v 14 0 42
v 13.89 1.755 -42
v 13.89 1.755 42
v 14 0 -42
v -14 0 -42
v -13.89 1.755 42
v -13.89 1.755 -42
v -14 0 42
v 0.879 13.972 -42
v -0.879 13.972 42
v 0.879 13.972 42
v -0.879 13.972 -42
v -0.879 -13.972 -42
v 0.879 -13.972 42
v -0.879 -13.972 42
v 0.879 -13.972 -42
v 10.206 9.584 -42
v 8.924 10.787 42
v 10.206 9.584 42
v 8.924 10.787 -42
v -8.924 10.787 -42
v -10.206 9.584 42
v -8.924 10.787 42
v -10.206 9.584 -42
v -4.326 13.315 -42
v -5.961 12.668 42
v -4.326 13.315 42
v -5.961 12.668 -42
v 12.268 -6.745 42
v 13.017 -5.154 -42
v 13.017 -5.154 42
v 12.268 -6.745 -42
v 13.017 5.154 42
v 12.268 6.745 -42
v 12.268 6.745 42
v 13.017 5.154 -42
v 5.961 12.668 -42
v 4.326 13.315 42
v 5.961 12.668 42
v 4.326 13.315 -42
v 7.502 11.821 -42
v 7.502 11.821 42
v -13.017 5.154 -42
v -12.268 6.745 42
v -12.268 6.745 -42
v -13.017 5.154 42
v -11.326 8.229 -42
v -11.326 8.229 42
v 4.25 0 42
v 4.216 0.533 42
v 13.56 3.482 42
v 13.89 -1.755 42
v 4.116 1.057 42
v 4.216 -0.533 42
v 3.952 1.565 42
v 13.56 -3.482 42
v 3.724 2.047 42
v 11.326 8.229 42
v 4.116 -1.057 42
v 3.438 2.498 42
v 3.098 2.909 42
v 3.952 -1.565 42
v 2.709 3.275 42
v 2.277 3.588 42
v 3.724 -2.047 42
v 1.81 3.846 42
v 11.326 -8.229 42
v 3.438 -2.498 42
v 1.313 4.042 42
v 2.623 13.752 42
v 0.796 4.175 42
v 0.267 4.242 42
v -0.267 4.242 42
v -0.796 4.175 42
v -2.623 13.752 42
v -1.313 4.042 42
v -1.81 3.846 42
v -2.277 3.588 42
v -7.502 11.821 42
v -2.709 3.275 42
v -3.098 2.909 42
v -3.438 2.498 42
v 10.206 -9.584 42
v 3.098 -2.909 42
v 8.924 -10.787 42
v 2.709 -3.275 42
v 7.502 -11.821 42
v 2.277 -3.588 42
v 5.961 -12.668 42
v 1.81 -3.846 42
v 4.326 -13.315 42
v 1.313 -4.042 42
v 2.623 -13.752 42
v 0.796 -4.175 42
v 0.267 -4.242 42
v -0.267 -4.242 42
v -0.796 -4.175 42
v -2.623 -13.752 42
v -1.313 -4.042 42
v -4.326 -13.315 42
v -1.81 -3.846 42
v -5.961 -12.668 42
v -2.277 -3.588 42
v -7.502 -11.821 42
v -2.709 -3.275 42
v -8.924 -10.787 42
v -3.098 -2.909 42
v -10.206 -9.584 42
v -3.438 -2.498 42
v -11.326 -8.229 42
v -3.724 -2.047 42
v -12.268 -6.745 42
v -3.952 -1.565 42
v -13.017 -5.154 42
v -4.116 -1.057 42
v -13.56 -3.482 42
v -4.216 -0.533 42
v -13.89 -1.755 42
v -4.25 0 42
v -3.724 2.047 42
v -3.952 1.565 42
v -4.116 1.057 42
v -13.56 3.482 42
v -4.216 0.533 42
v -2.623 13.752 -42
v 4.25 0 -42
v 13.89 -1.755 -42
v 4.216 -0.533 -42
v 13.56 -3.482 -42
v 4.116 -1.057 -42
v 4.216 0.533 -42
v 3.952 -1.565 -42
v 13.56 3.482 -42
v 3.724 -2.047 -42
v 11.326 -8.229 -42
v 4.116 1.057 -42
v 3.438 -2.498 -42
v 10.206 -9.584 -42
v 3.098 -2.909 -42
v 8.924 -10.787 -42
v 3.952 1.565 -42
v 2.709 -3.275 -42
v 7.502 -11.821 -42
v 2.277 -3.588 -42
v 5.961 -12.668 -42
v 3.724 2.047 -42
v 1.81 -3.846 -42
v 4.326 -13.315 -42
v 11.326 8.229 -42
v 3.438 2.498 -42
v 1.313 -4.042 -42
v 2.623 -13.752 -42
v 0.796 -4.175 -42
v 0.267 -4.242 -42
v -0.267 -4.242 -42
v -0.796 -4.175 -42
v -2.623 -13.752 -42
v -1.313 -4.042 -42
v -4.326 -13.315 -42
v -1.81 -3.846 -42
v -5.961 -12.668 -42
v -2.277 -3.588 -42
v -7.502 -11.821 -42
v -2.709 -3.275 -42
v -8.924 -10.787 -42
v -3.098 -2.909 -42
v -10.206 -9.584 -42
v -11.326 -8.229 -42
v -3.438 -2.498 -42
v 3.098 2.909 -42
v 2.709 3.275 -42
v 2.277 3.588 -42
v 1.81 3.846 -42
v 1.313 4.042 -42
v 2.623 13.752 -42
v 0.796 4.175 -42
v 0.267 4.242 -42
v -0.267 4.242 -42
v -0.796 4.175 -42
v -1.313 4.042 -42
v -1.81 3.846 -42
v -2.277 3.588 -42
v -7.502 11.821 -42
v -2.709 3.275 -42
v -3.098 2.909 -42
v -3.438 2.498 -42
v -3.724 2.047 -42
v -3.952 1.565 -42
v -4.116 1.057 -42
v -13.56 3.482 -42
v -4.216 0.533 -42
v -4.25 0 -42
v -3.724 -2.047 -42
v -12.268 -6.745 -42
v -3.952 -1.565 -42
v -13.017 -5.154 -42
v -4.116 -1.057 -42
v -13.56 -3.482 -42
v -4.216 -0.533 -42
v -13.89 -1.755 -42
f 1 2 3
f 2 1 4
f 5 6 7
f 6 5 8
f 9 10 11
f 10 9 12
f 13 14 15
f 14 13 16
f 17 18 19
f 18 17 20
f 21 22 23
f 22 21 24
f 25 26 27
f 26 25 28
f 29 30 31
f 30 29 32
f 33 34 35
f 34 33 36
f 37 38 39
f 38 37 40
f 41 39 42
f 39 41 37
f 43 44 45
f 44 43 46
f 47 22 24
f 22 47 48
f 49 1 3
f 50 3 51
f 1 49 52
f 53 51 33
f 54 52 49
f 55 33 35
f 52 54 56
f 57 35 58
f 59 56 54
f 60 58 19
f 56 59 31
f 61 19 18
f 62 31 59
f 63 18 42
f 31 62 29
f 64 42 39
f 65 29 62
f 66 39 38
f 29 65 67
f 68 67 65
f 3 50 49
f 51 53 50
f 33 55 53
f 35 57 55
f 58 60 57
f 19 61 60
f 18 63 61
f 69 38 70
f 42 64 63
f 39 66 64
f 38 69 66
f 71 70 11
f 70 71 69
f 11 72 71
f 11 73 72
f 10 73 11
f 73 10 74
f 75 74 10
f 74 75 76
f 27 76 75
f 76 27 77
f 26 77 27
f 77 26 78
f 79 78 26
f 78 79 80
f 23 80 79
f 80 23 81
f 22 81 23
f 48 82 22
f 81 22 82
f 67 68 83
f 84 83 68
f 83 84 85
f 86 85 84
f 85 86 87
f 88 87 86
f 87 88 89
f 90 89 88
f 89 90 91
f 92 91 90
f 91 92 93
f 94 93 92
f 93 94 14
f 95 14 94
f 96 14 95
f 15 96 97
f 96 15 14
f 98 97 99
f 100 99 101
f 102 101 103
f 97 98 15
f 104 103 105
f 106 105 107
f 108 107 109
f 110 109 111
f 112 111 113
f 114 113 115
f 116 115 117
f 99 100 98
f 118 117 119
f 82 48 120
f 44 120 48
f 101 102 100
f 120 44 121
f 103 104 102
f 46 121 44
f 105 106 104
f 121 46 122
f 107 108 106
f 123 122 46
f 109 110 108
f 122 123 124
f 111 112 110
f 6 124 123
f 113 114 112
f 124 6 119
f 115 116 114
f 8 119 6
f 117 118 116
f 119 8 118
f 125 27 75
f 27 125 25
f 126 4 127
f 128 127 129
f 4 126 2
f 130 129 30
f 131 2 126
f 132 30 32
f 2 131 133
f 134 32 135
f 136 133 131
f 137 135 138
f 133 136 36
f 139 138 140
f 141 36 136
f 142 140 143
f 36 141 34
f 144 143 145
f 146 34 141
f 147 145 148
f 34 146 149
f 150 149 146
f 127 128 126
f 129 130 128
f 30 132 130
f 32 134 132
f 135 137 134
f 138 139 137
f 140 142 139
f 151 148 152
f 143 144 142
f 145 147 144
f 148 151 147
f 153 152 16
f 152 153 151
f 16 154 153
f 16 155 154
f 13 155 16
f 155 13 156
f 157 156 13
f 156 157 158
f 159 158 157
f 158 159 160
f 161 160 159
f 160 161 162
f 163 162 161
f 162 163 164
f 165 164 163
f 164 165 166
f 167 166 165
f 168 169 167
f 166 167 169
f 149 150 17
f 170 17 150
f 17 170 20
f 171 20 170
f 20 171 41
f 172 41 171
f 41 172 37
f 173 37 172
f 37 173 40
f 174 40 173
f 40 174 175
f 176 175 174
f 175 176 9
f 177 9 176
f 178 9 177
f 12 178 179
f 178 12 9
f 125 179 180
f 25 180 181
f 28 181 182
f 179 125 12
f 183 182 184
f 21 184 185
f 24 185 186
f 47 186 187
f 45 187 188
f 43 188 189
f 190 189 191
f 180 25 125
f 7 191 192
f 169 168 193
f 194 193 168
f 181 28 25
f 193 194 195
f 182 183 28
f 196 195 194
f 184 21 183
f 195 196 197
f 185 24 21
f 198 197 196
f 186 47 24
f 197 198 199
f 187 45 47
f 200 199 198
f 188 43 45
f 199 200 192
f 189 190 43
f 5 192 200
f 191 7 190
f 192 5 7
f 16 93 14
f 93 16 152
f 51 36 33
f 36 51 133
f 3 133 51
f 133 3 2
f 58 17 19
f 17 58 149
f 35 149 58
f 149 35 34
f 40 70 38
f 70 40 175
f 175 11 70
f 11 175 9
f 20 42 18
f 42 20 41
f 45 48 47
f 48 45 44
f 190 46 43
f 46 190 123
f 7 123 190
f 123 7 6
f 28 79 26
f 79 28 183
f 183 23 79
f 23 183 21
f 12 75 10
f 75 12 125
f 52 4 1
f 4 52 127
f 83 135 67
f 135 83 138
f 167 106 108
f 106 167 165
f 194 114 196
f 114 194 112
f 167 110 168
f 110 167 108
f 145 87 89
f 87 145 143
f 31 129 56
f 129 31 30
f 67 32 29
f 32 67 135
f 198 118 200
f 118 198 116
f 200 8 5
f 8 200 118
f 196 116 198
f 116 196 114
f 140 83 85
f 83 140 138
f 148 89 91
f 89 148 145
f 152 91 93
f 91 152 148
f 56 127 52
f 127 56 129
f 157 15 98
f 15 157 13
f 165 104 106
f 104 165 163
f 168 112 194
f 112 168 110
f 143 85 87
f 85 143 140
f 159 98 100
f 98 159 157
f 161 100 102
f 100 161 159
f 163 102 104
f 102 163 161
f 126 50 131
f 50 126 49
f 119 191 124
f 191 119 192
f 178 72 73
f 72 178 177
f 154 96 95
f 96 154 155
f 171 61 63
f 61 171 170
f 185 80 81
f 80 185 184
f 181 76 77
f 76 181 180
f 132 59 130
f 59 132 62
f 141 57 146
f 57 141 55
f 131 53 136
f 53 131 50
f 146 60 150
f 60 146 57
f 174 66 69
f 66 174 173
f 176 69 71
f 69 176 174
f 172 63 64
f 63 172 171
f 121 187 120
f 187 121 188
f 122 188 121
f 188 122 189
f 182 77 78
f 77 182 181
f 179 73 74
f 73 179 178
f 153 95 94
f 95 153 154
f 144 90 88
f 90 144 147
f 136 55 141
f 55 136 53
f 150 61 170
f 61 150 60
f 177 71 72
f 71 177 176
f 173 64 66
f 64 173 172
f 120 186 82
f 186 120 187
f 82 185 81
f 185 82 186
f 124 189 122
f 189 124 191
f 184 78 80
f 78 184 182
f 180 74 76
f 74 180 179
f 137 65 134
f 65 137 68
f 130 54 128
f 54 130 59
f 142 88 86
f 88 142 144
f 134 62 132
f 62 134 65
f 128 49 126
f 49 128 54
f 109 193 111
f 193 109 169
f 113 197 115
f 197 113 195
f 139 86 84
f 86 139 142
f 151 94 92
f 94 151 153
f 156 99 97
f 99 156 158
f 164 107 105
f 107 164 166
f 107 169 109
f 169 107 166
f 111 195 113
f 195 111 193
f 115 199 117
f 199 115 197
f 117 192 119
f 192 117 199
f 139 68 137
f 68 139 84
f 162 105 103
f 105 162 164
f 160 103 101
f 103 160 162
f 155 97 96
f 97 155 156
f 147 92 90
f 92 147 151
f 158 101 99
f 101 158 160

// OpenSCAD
$fn = 50;


difference() {
	union() {
		translate(v = [0, 0, -42.0000000000]) {
			cylinder(h = 84, r = 14.0000000000);
		}
	}
	union() {
		translate(v = [0, 0, -100.0000000000]) {
			cylinder(h = 200, r = 4.2500000000);
		}
	}
}
